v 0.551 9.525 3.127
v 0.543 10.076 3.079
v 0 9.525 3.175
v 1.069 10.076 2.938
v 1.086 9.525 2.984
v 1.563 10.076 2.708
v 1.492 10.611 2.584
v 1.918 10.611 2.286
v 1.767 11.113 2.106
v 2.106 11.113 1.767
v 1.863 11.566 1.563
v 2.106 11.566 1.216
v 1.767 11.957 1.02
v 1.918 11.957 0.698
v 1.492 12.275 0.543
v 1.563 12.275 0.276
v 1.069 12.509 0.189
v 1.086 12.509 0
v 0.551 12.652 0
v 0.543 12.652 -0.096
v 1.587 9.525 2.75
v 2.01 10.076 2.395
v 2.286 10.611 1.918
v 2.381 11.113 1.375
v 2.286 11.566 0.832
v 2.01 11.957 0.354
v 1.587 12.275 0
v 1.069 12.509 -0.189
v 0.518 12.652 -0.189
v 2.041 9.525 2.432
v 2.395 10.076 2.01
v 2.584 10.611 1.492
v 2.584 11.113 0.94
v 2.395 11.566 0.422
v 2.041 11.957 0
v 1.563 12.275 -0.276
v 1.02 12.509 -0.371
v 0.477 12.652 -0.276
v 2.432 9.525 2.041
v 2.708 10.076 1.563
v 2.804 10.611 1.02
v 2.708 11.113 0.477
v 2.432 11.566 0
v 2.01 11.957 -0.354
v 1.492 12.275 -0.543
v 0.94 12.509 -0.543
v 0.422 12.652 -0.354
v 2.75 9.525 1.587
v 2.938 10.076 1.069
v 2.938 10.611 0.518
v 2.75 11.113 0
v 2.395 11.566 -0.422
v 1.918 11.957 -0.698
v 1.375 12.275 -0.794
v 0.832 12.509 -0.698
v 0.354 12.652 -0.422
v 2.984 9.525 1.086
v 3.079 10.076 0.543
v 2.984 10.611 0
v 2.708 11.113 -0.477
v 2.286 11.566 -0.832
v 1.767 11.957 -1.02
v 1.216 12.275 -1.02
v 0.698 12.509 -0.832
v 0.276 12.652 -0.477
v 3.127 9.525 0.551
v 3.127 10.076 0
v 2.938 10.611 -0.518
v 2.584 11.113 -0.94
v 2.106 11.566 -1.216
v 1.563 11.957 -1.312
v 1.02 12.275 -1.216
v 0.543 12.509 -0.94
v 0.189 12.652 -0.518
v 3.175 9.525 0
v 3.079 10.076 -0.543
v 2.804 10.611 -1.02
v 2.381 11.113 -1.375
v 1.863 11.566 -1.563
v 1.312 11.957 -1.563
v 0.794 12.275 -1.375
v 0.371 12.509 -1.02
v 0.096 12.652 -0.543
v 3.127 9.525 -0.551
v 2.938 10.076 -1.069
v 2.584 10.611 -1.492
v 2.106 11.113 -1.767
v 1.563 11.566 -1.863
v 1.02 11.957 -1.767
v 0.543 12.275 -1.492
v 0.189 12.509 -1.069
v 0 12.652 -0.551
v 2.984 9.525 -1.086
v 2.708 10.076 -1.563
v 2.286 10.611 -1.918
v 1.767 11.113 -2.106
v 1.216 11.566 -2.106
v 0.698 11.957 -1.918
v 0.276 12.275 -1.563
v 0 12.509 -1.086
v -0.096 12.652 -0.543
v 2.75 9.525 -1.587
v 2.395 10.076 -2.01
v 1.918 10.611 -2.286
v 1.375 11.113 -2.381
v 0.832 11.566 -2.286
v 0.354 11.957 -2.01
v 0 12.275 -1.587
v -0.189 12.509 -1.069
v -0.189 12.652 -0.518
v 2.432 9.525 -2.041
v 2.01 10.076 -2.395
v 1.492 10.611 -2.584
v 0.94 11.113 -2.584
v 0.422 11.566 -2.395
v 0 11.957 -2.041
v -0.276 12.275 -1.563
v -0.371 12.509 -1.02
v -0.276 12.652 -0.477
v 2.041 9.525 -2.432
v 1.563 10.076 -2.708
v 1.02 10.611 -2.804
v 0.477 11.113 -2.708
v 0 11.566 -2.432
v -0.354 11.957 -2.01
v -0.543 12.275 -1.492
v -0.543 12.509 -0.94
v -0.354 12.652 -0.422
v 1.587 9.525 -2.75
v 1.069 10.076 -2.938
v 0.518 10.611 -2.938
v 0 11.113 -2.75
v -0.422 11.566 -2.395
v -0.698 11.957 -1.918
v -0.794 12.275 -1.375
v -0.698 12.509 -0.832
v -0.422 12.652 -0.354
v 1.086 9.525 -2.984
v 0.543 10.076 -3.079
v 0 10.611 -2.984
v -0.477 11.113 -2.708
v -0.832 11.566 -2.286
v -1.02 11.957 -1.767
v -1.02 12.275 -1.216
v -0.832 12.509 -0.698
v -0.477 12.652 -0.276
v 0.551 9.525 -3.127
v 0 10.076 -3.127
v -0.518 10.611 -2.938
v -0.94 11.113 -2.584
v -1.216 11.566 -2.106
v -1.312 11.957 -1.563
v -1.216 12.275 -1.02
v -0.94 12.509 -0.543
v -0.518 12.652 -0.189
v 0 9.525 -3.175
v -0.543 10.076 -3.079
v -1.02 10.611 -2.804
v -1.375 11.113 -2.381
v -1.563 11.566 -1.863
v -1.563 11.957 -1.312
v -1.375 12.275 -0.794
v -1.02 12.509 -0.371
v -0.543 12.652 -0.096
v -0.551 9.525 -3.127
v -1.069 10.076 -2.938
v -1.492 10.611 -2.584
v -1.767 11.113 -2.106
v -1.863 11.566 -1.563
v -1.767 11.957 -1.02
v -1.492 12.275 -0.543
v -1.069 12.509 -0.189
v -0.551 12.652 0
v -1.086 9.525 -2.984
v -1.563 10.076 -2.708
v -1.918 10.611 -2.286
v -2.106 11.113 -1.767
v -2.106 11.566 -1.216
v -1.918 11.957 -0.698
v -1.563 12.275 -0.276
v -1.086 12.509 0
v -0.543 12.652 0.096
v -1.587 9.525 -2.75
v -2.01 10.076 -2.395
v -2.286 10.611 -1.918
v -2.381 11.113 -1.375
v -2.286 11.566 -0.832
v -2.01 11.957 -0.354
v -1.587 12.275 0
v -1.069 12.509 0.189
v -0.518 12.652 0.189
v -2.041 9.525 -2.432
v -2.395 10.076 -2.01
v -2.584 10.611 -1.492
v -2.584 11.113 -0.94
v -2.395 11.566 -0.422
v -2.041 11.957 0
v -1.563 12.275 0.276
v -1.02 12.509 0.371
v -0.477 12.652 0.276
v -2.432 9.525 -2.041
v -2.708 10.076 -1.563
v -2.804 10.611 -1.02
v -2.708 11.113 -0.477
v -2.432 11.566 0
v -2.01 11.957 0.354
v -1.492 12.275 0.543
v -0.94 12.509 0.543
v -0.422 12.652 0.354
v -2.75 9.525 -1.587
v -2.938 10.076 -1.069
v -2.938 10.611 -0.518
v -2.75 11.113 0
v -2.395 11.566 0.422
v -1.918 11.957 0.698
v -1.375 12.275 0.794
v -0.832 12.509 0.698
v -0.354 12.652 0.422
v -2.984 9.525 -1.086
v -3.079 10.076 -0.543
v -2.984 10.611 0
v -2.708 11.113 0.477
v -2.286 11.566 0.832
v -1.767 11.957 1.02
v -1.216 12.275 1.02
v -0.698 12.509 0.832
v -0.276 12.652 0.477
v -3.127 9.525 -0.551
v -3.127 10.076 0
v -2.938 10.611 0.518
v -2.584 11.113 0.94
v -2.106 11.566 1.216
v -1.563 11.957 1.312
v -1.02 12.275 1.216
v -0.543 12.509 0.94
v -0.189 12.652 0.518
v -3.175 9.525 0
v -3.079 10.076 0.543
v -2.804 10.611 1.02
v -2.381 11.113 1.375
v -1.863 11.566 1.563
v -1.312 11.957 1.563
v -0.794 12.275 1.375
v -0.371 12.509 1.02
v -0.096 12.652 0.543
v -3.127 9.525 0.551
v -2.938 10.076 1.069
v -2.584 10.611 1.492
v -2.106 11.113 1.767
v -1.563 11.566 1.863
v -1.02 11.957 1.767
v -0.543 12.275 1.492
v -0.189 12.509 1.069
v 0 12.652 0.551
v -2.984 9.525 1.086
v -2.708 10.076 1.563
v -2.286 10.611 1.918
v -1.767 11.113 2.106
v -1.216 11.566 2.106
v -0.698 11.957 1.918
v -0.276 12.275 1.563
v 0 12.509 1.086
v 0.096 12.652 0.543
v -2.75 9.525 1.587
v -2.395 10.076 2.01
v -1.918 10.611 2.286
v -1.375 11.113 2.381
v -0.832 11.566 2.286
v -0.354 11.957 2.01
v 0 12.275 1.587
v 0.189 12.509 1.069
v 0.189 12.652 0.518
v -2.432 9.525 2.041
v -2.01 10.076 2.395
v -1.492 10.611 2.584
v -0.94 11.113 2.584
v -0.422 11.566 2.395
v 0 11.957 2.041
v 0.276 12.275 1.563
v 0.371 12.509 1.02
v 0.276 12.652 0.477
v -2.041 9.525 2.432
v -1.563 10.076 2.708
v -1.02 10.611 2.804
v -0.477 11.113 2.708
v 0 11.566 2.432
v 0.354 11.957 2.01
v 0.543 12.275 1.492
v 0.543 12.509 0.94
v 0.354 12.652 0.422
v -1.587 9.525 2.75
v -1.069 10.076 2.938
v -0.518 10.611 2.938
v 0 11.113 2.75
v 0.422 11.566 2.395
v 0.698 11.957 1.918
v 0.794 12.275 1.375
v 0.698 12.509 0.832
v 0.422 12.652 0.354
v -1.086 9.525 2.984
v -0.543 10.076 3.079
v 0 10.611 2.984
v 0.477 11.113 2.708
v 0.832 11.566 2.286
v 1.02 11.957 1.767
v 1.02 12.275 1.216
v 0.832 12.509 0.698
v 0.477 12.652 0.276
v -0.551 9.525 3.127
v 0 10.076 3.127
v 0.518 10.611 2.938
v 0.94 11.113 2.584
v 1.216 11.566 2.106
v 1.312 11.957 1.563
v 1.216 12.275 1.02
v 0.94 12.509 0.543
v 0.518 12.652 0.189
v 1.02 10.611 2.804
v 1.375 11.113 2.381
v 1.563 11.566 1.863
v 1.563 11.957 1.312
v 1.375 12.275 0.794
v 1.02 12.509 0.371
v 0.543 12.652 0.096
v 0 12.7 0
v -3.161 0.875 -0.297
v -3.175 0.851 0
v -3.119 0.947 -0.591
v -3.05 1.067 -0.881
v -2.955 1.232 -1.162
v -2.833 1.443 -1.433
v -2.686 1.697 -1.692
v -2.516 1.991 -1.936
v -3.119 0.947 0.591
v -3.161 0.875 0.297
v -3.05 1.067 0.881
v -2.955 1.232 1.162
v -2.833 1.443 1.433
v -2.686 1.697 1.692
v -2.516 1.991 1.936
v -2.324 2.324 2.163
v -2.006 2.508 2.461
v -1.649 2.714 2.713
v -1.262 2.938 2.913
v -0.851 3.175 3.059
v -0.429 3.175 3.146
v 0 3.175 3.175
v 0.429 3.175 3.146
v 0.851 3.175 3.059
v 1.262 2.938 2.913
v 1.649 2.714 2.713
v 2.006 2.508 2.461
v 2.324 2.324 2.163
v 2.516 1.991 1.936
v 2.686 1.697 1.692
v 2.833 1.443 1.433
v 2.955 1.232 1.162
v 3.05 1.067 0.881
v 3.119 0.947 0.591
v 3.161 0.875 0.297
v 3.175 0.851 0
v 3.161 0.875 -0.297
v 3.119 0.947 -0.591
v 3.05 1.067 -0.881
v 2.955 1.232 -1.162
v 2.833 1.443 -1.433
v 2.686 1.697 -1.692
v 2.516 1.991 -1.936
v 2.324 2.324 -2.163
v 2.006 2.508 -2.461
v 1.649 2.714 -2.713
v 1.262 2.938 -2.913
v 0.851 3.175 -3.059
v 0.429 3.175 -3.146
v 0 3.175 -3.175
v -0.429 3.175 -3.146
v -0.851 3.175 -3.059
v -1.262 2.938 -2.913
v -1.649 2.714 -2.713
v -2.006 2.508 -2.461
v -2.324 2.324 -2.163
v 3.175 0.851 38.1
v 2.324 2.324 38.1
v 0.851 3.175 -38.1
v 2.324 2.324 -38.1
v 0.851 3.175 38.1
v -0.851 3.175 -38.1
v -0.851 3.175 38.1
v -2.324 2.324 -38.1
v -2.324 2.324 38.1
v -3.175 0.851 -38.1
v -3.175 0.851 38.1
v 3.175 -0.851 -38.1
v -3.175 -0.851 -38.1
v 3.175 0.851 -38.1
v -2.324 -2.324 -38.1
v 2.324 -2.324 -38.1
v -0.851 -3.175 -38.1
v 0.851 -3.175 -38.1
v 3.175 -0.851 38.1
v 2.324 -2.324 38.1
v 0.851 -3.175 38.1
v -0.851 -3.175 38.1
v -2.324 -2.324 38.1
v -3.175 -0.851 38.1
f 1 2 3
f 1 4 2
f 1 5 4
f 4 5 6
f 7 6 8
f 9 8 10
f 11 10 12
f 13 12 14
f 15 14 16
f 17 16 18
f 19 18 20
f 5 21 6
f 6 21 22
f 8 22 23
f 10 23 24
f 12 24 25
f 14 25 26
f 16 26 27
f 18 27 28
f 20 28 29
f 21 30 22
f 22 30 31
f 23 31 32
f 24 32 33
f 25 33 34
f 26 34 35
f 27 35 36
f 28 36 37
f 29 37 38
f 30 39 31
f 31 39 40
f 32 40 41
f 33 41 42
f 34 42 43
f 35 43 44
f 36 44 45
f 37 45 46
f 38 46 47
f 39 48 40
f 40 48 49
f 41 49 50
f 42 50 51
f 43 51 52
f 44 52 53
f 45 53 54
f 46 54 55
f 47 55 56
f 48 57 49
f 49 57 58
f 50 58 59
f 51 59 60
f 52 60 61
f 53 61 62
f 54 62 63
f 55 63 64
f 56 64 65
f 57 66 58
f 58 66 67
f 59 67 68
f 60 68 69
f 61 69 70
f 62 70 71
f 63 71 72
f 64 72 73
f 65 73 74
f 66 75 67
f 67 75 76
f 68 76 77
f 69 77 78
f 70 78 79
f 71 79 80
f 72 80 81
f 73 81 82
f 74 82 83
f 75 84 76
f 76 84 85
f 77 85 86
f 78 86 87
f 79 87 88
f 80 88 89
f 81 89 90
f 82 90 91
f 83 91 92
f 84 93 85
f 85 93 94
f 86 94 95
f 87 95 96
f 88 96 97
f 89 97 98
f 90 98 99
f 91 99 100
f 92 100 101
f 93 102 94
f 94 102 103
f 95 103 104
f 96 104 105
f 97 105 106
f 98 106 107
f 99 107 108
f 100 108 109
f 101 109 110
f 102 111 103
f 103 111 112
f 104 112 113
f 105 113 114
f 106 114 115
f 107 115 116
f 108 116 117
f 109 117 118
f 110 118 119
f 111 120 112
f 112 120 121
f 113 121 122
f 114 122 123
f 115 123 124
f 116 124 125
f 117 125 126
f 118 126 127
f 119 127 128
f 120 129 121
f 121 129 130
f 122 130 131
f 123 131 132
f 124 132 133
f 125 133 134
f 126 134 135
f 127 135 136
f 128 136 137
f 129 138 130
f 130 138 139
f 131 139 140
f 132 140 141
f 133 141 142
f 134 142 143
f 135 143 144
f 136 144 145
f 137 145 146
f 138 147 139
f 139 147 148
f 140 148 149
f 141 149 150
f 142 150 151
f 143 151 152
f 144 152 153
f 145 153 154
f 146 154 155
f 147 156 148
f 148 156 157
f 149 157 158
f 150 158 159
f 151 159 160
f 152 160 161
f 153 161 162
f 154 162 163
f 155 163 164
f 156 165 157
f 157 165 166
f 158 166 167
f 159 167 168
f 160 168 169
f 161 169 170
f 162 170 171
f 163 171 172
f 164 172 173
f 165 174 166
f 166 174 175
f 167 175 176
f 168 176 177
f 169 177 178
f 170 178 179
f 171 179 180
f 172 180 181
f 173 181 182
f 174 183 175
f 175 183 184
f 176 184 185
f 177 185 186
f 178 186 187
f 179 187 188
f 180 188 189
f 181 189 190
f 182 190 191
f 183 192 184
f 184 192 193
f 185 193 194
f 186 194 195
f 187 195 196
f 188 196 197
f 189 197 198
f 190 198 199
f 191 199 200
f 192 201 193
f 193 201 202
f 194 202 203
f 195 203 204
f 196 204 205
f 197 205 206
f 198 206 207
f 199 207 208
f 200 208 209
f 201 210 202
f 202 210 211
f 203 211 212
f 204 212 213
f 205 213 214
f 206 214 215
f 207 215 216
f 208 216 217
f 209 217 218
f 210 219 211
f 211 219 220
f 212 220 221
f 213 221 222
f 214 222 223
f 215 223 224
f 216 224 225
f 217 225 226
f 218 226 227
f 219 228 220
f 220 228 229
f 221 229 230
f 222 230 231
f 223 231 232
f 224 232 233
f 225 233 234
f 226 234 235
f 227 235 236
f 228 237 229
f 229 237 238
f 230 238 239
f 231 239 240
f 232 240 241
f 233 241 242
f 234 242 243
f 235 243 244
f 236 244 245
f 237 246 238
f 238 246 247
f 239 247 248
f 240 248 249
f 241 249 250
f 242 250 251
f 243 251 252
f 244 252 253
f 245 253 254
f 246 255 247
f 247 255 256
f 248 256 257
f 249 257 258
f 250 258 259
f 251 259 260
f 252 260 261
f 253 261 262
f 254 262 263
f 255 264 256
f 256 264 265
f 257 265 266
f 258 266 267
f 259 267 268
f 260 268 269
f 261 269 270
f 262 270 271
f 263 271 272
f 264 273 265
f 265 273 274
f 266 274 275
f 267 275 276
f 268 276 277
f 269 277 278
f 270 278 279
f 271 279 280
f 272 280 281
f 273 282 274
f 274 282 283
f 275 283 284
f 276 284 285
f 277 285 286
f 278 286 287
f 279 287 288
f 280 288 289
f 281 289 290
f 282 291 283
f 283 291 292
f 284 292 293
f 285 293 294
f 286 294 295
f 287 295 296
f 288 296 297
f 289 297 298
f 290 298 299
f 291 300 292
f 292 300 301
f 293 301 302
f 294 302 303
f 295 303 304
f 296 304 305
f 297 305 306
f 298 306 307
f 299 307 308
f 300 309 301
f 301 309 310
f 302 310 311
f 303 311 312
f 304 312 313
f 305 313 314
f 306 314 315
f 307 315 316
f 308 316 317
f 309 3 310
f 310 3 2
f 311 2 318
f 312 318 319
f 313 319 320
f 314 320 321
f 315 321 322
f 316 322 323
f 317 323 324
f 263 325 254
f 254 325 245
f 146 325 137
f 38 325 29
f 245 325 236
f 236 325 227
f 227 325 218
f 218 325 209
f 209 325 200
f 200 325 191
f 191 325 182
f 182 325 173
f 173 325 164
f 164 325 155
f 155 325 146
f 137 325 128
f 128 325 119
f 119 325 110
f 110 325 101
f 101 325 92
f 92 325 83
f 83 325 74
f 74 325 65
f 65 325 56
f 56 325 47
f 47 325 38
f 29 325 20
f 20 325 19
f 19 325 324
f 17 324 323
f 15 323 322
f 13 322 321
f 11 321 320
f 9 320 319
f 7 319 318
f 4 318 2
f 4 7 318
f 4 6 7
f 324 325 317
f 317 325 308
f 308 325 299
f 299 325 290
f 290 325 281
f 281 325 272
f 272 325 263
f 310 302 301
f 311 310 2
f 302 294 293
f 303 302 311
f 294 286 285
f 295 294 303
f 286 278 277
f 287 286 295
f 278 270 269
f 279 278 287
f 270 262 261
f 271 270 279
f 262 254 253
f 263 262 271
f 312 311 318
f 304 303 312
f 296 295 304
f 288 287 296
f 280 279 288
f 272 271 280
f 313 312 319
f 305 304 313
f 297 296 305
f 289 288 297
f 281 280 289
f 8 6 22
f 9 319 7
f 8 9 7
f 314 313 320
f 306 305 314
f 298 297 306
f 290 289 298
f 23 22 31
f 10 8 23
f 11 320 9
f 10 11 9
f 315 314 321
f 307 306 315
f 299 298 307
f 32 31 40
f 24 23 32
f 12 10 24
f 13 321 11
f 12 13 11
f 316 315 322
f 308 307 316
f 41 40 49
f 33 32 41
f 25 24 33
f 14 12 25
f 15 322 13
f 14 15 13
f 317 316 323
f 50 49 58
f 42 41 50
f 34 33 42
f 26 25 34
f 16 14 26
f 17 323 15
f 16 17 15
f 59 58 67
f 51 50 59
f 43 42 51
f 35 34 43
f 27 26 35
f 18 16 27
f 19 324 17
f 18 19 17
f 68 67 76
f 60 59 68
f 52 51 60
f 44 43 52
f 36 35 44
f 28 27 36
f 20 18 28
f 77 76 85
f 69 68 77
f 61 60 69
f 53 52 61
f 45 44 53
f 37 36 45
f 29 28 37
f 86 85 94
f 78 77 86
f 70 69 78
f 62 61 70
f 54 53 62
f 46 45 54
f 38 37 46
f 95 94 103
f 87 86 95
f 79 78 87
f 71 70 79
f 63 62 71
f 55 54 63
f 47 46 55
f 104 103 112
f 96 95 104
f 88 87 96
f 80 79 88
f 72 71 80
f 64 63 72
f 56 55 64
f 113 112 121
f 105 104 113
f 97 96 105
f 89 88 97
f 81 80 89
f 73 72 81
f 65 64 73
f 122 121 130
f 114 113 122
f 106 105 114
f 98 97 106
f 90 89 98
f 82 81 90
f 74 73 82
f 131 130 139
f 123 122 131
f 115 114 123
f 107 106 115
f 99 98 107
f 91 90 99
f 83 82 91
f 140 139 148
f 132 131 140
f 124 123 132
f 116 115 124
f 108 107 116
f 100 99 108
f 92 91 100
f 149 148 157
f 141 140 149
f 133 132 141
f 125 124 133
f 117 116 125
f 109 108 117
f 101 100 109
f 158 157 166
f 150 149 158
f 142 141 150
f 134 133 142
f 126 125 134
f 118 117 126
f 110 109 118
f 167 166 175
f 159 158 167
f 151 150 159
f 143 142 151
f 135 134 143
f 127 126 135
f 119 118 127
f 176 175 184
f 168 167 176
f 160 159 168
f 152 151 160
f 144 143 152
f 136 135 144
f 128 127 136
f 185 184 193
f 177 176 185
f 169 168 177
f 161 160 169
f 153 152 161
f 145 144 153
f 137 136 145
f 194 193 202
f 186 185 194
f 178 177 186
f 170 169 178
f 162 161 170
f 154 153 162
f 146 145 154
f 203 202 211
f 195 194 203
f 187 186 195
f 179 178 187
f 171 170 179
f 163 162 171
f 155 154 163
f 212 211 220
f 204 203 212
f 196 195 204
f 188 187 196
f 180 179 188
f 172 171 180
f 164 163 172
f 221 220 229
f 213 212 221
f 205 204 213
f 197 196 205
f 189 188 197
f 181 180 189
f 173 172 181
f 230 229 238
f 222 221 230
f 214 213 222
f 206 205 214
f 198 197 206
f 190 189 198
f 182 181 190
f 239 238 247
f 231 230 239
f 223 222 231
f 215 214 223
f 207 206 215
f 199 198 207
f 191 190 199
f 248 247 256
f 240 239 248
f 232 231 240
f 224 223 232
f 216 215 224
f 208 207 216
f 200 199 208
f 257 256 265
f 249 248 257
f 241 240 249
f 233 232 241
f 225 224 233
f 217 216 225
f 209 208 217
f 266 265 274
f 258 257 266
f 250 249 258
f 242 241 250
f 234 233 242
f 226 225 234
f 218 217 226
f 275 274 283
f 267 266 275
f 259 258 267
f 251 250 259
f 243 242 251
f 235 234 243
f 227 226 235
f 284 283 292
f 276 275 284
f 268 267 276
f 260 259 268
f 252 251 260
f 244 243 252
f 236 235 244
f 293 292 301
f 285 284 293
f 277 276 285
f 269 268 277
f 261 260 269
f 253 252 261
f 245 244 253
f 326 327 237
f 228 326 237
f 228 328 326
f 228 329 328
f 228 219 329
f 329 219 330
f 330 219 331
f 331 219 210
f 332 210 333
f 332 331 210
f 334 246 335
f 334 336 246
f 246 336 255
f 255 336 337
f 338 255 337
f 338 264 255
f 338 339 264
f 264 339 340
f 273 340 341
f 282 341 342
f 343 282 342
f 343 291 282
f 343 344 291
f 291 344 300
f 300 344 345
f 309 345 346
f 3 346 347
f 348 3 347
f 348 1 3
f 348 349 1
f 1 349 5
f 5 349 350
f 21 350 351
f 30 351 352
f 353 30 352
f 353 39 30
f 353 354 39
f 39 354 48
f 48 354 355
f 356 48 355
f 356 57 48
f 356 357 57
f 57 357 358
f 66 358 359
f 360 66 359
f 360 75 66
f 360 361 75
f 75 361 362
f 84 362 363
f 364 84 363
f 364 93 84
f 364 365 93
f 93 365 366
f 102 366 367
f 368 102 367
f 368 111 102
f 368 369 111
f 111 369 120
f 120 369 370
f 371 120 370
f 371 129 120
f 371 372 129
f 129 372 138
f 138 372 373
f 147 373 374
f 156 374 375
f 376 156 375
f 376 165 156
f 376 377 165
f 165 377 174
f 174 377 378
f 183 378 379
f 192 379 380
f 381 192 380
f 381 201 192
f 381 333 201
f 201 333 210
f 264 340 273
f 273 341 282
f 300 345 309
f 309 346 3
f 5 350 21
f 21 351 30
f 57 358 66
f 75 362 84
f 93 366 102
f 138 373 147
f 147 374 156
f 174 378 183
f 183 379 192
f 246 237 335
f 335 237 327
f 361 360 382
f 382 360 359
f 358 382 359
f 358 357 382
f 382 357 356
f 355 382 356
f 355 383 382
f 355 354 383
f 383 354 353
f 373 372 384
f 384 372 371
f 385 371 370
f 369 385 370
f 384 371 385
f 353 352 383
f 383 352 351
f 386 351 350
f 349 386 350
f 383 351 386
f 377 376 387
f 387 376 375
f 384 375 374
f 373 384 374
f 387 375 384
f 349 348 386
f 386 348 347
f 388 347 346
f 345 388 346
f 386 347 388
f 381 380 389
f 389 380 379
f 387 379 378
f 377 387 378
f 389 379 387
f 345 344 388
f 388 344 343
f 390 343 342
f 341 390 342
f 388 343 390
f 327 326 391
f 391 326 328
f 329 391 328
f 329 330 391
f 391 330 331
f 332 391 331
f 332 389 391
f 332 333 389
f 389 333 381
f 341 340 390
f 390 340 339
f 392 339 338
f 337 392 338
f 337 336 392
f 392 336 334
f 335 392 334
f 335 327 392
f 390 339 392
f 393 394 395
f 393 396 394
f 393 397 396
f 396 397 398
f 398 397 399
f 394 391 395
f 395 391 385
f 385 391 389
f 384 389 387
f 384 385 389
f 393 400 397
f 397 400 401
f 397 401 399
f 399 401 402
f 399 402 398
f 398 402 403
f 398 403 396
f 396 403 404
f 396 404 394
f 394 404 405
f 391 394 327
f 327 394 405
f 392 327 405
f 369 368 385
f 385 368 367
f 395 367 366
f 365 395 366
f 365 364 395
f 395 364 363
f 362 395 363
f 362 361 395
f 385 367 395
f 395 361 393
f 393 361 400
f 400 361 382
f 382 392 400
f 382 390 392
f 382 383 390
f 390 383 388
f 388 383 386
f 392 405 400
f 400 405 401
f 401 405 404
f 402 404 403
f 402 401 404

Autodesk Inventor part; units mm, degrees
ref_plane "YZ Plane" through (0, 0, 0) normal (1, 0, 0) x (0, 1, 0)
ref_plane "XZ Plane" through (0, 0, 0) normal (0, 1, 0) x (-1, 0, 0)
ref_plane "XY Plane" through (0, 0, 0) normal (0, 0, 1) x (1, 0, 0)
sketch "Sketch1" plane through (0, 0, 0) normal (0, 0, 1) x (1, 0, 0)
  line L0 (3.175, 0.8507) -> (3.175, -0.8507)
  line L1 (3.175, -0.8507) -> (2.3243, -2.3243)
  line L2 (2.3243, -2.3243) -> (0.8507, -3.175)
  line L3 (0.8507, -3.175) -> (-0.8507, -3.175)
  line L4 (-0.8507, -3.175) -> (-2.3243, -2.3243)
  line L5 (-2.3243, -2.3243) -> (-3.175, -0.8507)
  line L6 (-3.175, -0.8507) -> (-3.175, 0.8507)
  line L7 (-3.175, 0.8507) -> (-2.3243, 2.3243)
  line L8 (-2.3243, 2.3243) -> (-0.8507, 3.175)
  line L9 (-0.8507, 3.175) -> (0.8507, 3.175)
  line L10 (0.8507, 3.175) -> (2.3243, 2.3243)
  line L11 (2.3243, 2.3243) -> (3.175, 0.8507)
  line L12 (0, 0) -> (0, 3.175) construction
  dimension "d9" = 6.35
extrude "Extrusion1" add sketch "Sketch1" along normal mid plane 76.2
sketch "Sketch2" plane through (0, 0, 0) normal (0, 1, 0) x (-1, 0, 0)
  circle A0 centre (0, 0) radius 3.175
  dimension "diamCamSlot" = 6.35
extrude "Extrusion2" add sketch "Sketch2" along normal blind 12.7
sketch "Sketch4" plane through (0, 0, 0) normal (1, 0, 0) x (0, 1, 0)
  line L0 (12.7, -3.175) -> (12.7, 3.175) projected
  arc A0 (12.7, 0) -> (9.525, 3.175) centre (9.525, 0) ccw
  line L1 (9.525, 3.175) -> (12.7, 3.175)
  line L2 (3.175, 3.175) -> (12.7, 3.175) projected
  line L3 (12.7, 0) -> (12.7, 3.175)
  line L4 (12.7, 0) -> (9.525, 0) construction
  point P0 (0, 0)
  dimension "camRadius" = 3.175
revolve "Revolution1" cut sketch "Sketch4" angle 360 about axis through (0, 12.7, 0) along (0, -1, 0)
equation "\"d9\" = camDiam"
equation "\"diamCamSlot\" = camDiam"
equation "\"camRadius\" = 0.5 * camDiam"
equation "\"camDiam\" = 6.35"
properties part number "vexCamPost"
